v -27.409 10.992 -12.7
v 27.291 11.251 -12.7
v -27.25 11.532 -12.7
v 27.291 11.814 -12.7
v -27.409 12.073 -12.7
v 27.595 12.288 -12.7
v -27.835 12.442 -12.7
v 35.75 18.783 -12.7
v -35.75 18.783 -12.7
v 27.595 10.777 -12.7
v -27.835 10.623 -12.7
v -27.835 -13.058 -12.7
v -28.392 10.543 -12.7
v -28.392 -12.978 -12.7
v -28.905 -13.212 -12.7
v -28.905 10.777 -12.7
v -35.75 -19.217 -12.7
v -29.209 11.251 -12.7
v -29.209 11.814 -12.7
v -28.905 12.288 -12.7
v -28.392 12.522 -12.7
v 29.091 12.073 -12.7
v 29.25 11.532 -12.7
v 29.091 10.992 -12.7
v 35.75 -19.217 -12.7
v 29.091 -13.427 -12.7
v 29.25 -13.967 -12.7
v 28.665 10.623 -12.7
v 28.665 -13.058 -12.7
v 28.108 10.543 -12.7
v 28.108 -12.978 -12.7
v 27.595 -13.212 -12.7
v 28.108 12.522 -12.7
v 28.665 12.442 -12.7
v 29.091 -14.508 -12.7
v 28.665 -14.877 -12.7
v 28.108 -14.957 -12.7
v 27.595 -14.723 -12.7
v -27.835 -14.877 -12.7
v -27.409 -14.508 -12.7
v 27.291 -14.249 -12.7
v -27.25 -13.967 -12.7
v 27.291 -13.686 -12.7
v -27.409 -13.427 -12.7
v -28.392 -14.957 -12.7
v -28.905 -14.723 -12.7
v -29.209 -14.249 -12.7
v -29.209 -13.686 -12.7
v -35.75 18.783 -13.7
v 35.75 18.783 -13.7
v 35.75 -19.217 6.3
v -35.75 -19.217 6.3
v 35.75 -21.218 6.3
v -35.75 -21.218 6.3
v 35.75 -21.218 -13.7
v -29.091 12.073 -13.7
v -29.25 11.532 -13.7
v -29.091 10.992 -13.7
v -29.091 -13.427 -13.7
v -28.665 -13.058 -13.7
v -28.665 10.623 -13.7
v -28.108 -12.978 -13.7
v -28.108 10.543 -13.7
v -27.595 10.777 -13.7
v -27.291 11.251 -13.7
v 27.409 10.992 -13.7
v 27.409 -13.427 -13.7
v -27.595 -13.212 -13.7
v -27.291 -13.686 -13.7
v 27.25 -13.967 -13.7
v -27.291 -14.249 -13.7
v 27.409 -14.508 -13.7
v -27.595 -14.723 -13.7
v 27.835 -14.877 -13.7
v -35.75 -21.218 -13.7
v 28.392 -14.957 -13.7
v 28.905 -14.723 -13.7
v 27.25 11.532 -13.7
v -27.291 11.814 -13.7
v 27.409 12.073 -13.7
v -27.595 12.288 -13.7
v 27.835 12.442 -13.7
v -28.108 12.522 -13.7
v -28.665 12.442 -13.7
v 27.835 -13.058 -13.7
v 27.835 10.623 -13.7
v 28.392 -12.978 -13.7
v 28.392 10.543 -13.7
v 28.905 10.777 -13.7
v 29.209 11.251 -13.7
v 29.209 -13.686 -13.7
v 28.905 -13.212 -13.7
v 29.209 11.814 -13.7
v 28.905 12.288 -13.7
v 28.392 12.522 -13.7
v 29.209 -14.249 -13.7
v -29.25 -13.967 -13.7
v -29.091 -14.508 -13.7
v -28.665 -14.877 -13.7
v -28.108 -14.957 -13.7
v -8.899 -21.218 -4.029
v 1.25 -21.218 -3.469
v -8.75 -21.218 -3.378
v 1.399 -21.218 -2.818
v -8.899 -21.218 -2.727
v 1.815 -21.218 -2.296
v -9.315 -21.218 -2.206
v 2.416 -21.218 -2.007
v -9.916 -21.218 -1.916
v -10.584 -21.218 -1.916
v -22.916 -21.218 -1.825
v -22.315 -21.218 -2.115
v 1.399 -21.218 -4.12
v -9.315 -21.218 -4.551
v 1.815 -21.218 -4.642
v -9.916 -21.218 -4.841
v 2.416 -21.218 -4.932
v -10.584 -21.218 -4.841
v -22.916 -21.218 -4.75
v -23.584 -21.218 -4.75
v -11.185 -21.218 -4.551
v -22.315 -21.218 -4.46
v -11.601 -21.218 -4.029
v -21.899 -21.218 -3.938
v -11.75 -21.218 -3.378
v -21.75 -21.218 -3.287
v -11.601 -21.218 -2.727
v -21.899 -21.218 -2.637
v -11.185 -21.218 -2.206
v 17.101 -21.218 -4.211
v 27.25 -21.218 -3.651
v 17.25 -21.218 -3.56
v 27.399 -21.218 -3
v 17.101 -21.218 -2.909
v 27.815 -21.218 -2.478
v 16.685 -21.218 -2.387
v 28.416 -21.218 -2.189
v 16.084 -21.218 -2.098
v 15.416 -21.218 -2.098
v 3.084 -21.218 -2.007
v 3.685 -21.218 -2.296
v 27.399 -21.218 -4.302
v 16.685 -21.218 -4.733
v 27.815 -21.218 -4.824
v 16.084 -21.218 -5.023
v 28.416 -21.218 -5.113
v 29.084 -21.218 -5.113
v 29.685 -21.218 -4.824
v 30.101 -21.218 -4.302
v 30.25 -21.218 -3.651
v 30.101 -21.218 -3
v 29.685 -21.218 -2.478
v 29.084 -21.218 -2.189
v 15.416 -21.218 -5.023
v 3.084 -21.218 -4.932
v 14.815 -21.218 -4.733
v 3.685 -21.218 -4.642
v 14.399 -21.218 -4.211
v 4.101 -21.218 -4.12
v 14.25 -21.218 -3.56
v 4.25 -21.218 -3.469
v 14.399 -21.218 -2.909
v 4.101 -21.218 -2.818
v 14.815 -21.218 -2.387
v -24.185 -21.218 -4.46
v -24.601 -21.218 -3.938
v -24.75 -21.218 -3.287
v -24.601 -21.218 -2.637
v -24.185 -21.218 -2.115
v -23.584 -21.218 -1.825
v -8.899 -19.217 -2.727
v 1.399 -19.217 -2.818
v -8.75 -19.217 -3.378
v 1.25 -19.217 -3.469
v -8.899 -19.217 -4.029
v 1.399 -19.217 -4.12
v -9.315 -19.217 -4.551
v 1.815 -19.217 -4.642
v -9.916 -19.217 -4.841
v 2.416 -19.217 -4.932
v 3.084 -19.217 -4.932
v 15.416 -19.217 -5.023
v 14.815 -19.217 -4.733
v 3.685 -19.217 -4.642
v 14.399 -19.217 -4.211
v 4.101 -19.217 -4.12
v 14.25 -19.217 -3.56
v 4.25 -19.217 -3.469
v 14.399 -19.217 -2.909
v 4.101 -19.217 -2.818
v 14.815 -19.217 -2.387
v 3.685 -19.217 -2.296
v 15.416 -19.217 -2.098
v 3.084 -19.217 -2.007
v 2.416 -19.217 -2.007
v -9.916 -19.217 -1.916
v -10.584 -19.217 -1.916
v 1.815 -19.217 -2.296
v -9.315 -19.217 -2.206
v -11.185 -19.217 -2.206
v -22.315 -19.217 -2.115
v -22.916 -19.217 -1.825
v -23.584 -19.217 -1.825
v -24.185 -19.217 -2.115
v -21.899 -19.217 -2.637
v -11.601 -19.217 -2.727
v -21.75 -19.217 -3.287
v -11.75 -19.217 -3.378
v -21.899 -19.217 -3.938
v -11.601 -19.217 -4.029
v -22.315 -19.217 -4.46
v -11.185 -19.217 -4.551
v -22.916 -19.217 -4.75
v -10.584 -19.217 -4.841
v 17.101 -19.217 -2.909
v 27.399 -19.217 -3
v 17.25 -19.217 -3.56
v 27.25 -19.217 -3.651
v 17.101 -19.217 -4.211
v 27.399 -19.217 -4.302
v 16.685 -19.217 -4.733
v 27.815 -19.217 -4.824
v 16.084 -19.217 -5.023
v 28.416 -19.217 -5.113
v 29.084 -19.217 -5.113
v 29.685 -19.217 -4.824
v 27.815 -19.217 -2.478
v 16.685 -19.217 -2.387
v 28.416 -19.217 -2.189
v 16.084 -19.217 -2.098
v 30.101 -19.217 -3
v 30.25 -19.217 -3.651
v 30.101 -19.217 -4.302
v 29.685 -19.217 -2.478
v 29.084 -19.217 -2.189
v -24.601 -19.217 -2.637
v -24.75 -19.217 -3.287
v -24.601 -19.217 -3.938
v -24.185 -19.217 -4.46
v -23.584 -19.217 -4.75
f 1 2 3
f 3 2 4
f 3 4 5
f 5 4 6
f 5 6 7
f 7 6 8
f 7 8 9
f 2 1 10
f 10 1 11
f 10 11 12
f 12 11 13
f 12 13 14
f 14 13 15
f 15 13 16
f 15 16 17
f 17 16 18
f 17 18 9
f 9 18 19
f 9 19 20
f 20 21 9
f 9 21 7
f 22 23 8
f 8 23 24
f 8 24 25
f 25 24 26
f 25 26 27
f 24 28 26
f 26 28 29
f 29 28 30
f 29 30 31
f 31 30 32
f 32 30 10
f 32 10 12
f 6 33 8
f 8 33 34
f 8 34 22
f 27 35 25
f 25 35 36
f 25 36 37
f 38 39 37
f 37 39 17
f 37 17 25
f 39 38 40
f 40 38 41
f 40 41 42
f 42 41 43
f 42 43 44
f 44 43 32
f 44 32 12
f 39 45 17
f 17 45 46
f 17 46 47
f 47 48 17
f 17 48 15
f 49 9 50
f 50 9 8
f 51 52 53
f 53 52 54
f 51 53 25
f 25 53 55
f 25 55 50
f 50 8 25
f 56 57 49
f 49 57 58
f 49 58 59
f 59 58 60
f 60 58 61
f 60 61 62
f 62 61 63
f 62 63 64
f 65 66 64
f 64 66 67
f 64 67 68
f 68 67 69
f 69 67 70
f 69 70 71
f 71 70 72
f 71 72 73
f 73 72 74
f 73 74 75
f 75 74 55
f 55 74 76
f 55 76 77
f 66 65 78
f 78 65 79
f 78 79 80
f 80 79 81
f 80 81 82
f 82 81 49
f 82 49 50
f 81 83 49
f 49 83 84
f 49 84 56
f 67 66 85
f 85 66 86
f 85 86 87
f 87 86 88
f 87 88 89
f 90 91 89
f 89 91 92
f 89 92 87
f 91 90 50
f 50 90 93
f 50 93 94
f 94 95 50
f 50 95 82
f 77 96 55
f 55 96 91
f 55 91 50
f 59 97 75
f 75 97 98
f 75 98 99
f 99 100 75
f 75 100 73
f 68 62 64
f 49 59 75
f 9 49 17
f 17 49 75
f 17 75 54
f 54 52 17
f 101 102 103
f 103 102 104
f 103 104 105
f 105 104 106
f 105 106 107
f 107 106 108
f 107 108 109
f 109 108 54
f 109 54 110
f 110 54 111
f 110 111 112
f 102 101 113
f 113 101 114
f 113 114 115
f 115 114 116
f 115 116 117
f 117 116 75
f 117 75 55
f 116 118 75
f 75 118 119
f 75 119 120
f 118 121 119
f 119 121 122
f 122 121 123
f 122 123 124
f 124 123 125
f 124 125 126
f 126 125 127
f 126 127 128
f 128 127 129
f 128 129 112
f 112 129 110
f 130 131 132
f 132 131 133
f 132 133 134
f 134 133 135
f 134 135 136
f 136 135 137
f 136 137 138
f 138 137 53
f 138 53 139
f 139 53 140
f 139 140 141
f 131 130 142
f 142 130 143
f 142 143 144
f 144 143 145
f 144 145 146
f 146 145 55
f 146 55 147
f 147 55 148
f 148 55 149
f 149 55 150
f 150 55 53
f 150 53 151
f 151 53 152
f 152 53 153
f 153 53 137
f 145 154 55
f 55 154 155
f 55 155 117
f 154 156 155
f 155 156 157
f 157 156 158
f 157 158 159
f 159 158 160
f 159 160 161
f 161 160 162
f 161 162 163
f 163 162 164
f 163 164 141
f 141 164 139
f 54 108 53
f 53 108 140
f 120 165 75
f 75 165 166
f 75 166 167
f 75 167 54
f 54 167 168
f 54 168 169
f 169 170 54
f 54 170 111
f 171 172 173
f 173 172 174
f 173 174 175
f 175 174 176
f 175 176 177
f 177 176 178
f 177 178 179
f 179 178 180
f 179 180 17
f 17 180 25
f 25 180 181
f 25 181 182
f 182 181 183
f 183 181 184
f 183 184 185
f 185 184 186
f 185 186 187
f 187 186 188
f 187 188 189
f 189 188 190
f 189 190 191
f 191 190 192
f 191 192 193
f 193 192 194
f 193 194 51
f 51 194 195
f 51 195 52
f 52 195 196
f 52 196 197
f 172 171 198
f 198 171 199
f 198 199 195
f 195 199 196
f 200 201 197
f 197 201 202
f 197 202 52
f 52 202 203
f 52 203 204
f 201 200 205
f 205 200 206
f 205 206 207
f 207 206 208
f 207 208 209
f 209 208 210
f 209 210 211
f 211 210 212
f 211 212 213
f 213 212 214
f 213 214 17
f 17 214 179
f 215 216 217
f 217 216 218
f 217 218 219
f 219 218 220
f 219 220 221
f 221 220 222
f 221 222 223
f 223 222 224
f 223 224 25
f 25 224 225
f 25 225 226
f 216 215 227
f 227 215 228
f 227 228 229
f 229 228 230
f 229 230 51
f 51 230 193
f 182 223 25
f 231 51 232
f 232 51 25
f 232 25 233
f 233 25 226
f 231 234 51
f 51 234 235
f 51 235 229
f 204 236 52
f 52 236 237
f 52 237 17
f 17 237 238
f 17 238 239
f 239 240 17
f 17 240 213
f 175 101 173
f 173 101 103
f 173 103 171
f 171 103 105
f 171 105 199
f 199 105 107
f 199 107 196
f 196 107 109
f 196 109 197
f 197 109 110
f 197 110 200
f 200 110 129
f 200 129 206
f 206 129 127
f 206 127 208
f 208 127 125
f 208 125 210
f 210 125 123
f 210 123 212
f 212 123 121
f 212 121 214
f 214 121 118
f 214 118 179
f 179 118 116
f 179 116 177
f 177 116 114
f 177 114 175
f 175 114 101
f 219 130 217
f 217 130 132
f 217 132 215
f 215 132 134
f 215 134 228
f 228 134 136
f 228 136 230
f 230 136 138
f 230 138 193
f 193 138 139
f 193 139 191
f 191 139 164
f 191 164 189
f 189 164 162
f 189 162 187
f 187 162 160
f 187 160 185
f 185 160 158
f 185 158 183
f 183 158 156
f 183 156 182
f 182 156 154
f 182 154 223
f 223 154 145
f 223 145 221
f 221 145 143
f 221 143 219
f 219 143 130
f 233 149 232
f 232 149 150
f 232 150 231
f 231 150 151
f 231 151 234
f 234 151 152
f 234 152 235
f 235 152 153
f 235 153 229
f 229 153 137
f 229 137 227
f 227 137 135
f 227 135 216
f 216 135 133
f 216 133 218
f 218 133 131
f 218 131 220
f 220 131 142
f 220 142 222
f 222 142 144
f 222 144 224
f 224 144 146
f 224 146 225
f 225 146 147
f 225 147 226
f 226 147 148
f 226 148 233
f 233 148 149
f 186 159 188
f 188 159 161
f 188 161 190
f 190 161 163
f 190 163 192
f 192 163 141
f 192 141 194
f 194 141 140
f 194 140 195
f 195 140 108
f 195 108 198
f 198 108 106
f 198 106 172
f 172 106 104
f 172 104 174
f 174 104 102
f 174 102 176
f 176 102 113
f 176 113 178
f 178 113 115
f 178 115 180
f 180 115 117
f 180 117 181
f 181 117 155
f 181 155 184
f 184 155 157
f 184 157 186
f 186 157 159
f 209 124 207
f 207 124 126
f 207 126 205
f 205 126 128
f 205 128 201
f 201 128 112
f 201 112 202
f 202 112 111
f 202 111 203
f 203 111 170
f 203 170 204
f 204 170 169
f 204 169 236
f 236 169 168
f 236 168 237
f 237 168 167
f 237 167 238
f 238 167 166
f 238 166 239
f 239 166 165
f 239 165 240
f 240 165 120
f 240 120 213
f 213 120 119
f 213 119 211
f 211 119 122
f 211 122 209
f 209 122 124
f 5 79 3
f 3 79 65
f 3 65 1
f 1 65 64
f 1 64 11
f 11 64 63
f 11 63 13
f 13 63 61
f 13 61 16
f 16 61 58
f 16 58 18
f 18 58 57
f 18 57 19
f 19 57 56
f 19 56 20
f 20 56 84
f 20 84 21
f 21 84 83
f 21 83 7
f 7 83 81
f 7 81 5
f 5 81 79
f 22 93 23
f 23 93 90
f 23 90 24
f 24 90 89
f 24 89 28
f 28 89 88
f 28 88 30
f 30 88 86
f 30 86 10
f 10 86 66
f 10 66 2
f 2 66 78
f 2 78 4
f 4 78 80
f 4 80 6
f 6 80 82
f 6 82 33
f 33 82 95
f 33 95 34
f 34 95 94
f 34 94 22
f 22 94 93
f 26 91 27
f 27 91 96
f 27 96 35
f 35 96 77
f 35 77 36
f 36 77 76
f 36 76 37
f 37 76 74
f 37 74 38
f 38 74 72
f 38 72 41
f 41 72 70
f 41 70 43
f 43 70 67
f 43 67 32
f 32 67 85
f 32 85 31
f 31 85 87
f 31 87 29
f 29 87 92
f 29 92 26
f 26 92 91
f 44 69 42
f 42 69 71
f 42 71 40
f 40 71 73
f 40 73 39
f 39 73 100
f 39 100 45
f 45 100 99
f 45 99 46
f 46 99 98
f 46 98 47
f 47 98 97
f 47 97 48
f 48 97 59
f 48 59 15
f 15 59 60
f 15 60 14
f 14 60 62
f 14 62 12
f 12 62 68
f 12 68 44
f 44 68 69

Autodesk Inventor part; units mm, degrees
ref_plane "YZ Plane" through (0, 0, 0) normal (1, 0, 0) x (0, 1, 0)
ref_plane "XZ Plane" through (0, 0, 0) normal (0, 1, 0) x (-1, 0, 0)
ref_plane "XY Plane" through (0, 0, 0) normal (0, 0, 1) x (1, 0, 0)
sketch "スケッチ1" plane through (0, 0, 0) normal (0, 0, 1) x (1, 0, 0)
  line L0 (-32.5, -17.075) -> (32.5, -17.075)
  line L1 (32.5, -17.075) -> (32.5, 17.075)
  line L2 (32.5, 17.075) -> (-32.5, 17.075)
  line L3 (-32.5, 17.075) -> (-32.5, -17.075)
  line L4 (-32.5, -17.075) -> (32.5, 17.075) construction
  line L5 (32.5, -17.075) -> (-32.5, 17.075) construction
  point P0 (0, 0)
  dimension "d0" = 65
  dimension "d1" = 34.15
ref_plane "作業平面2" through (0, 0, -11.7) normal (0, 0, -1) x (-1, 0, 0)
ref_plane "作業平面1" through (35.75, -19.2175, -13.7) normal (0, 1, 0) x (-1, 0, 0)
sketch "スケッチ3" plane through (35.75, -19.2175, -13.7) normal (0, 1, 0) x (-1, 0, 0)
  line L0 (71.5, 0) -> (0, 0)
  line L1 (0, 0) -> (71.5, 0)
  line L2 (71.5, 0) -> (71.5, 20)
  line L3 (71.5, 20) -> (0, 20)
  line L4 (0, 20) -> (0, 0)
  line L5 (71.5, 1) -> (0, 1) projected
  point P0 (35.75, 13.7)
  dimension "d6" = 20
  dimension "d10" = 1
extrude "押し出し3" add sketch "スケッチ3" against normal blind 2
sketch "スケッチ4" plane through (35.75, -19.2175, -13.7) normal (0, 1, 0) x (1, 0, 0)
  line L0 (0, 0) -> (-71.5, 0) projected
  line L1 (0, -1) -> (-71.5, -1) projected
  line L2 (0, 0) -> (-71.5, 0)
  line L3 (-71.5, 0) -> (-71.5, -1)
  line L4 (-71.5, -1) -> (0, -1)
  line L5 (0, -1) -> (0, 0)
  point P0 (-35.75, -13.7)
extrude "押し出し4" add sketch "スケッチ4" along normal blind 38
sketch "スケッチ5" plane through (35.75, -19.2175, -13.7) normal (0, 1, 0) x (1, 0, 0)
  line L0 (0, 0) -> (0, -20) projected
  line L1 (0, -10) -> (-71.5, -10.5)
  line L2 (-71.5, -1) -> (-71.5, -20) projected
  point P0 (-35.75, -13.7)
  point P1 (-7, -10.049)
  point P2 (-20, -10.1399)
  point P3 (-33, -10.2308)
  point P4 (-46, -10.3217)
  point P5 (-59, -10.4126)
  dimension "d13" = 71.5
  dimension "d14" = 7
  dimension "d15" = 13
  dimension "d16" = 13
  dimension "d17" = 13
  dimension "d18" = 13
hole "穴1" at (28.75, -19.2175, -3.651) at (15.75, -19.2175, -3.5601) at (2.75, -19.2175, -3.4692) at (-10.25, -19.2175, -3.3783) at (-23.25, -19.2175, -3.2874) direction (0, -1, 0) diameter 3 depth 2 tip angle 118
sketch "スケッチ6" plane through (35.75, -21.2175, -13.7) normal (0, 0, -1) x (-1, 0, 0)
  line L0 (0, 2) -> (0, 40) projected
  line L1 (0, 0) -> (71.5, 0) projected
  line L2 (0, 40) -> (71.5, 40) projected
  line L3 (64, 7.25) -> (7.5, 7.25)
  line L4 (7.5, 7.25) -> (7.5, 32.75)
  line L5 (7.5, 32.75) -> (64, 32.75)
  line L6 (64, 32.75) -> (64, 7.25)
  line L7 (64, 7.25) -> (7.5, 32.75) construction
  line L8 (7.5, 7.25) -> (64, 32.75) construction
  point P0 (35.75, 21.2175)
  point P1 (35.75, 20)
  dimension "d26" = 56.5
  dimension "d27" = 25.5
hole "穴2" at (28.25, 11.5325, -13.7) at (28.25, -13.9675, -13.7) at (-28.25, 11.5325, -13.7) at (-28.25, -13.9675, -13.7) direction (0, 0, 1) diameter 2 depth 2 tip angle 118
properties part number "avhzy_maunt"
